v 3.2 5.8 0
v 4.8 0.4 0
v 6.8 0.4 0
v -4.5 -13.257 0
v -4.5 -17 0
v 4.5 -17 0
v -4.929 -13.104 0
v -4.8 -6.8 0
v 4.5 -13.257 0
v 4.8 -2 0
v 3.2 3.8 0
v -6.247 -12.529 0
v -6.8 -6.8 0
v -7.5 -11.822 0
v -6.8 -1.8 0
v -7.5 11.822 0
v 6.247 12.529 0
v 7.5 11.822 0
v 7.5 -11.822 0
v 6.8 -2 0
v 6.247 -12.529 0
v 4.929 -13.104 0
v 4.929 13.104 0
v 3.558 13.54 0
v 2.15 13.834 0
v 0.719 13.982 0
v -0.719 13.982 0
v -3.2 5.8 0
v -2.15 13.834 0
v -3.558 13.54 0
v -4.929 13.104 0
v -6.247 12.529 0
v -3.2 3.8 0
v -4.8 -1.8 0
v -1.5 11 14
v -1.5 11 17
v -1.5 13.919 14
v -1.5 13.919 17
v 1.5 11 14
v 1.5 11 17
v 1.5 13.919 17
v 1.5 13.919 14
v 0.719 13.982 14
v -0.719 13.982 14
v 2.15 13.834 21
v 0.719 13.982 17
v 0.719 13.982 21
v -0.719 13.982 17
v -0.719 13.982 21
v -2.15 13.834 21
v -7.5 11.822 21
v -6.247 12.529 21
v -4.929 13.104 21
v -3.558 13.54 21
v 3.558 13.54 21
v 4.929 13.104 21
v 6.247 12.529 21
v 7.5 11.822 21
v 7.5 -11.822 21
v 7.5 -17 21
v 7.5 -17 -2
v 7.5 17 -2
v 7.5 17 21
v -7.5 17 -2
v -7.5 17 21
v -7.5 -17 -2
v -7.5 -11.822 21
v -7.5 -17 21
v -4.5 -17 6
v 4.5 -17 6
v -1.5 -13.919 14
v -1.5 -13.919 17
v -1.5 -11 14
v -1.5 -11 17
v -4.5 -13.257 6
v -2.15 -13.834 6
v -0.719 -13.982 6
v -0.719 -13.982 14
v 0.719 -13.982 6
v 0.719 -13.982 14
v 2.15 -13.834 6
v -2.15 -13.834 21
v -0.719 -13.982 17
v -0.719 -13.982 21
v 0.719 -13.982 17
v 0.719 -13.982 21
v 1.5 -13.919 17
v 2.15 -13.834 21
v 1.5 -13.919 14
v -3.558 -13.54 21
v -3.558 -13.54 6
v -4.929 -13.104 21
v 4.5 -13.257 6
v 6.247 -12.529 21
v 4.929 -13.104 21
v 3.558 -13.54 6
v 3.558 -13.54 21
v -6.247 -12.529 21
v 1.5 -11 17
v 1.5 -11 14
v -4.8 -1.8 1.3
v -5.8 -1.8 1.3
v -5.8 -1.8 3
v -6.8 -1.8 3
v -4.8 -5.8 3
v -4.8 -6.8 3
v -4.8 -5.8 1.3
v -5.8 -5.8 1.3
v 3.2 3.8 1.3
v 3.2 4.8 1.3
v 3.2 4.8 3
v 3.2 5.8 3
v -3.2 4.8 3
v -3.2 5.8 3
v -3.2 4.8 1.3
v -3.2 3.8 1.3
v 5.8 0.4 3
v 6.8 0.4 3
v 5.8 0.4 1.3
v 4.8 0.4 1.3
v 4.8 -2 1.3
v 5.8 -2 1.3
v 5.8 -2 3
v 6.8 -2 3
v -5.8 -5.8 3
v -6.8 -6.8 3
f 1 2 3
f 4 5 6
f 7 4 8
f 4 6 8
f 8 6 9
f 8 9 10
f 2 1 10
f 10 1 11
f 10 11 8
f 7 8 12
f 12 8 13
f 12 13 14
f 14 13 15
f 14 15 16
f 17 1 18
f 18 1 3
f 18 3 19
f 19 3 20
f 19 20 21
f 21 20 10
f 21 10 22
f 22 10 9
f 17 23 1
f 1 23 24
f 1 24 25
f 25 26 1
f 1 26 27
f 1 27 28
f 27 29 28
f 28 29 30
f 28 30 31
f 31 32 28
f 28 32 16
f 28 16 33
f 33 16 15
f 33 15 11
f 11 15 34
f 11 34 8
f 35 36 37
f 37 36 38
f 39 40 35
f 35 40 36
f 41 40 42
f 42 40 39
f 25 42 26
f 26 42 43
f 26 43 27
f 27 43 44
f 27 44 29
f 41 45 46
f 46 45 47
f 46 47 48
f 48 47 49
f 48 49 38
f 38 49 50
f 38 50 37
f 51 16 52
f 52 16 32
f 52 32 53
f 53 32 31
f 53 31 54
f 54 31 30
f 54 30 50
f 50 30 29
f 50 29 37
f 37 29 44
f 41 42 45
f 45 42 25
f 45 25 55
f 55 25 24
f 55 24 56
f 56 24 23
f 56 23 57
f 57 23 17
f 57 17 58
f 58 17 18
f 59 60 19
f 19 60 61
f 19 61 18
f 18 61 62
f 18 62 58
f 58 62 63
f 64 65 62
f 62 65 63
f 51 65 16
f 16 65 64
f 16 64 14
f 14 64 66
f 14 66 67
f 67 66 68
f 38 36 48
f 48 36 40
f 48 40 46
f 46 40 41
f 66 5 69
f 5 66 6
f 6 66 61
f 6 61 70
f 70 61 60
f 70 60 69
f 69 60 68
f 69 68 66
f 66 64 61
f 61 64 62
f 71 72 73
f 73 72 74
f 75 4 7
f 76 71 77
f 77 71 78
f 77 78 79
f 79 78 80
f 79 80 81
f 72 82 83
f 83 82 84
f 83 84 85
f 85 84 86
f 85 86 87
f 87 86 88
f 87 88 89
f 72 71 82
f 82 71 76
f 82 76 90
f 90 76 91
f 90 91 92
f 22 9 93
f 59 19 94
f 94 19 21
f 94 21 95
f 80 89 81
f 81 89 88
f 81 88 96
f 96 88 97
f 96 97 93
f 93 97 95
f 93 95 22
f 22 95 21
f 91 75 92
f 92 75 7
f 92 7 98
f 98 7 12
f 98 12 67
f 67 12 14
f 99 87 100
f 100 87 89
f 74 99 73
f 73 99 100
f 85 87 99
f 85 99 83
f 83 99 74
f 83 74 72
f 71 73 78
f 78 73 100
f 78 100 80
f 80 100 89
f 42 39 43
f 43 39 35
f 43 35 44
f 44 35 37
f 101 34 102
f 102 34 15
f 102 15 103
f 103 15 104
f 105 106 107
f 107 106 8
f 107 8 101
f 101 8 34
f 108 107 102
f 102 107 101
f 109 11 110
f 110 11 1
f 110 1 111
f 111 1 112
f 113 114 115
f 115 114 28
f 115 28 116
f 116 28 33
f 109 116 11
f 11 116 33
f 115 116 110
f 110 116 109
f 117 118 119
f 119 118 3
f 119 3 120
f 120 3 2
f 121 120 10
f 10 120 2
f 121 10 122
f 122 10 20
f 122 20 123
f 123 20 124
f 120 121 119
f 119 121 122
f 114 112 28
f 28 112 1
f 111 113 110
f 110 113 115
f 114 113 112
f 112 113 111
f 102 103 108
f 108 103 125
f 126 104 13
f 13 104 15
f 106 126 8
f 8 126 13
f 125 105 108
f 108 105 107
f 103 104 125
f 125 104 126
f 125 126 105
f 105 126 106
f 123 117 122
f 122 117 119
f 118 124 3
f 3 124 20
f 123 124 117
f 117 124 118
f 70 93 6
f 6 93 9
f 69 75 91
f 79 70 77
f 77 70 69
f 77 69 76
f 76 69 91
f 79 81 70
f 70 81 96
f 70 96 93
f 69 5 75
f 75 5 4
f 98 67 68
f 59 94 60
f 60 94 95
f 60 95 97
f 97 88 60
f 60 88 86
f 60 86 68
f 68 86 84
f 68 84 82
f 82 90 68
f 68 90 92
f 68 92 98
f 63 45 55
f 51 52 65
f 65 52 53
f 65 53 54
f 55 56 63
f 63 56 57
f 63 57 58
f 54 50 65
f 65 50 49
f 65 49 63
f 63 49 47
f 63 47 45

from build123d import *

# Parameters (mm, degrees)
BOSS_EXTRUDE1_DEPTH = 17
SKETCH1_3_W         = 15
SKETCH1_3_H         = 34
BOSS_EXTRUDE3_DEPTH = 2
CUT_EXTRUDE1_DEPTH  = 14
SKETCH2_W           = 1
SKETCH2_H           = 4
SKETCH2_W_2         = 6.4
SKETCH2_H_2         = 1
SKETCH2_H_3         = 2.4
BOSS_EXTRUDE5_DEPTH = 1.3
SKETCH2_3_W         = 6.4
SKETCH2_3_H         = 1
SKETCH2_3_W_2       = 1
SKETCH2_3_H_2       = 2.4
BOSS_EXTRUDE6_DEPTH = 3
CUT_EXTRUDE3_REACH  = 36
SKETCH5_W           = 9
SKETCH5_H           = 6
BOSS_EXTRUDE7_DEPTH = 4


with BuildPart() as part:
    # Sketch1 → Boss-Extrude1 (new body)
    with BuildSketch(Plane.XY):
        with BuildLine():
            Line((7.5, 17), (-7.5, 17))
            Line((-7.5, 17), (-7.5, 11.821590418))
            ThreePointArc((-7.5, 11.821590418), (-4.620629037, 13.21551313), (-1.5, 13.919410907))
            Line((-1.5, 13.919410907), (-1.5, 14))
            Line((-1.5, 14), (0, 14))
            Line((0, 14), (1.5, 14))
            Line((1.5, 14), (1.5, 13.919410907))
            ThreePointArc((1.5, 13.919410907), (4.620629037, 13.21551313), (7.5, 11.821590418))
            Line((7.5, 11.821590418), (7.5, 17))
        make_face()
        with BuildLine():
            ThreePointArc((0, 14), (-0.751081654, 13.979838209), (-1.5, 13.919410907))
            Line((-1.5, 13.919410907), (-1.5, 11))
            Line((-1.5, 11), (1.5, 11))
            Line((1.5, 11), (1.5, 13.919410907))
            ThreePointArc((1.5, 13.919410907), (0.751081654, 13.979838209), (0, 14))
        make_face()
        with BuildLine():
            Line((-1.5, -11), (-1.5, -13.919410907))
            ThreePointArc((-1.5, -13.919410907), (-0.751081654, -13.979838209), (0, -14))
            ThreePointArc((0, -14), (0.751081654, -13.979838209), (1.5, -13.919410907))
            Line((1.5, -13.919410907), (1.5, -11))
            Line((1.5, -11), (-1.5, -11))
        make_face()
        with BuildLine():
            ThreePointArc((-1.5, -13.919410907), (-4.620629037, -13.21551313), (-7.5, -11.821590418))
            Line((-7.5, -11.821590418), (-7.5, -17))
            Line((-7.5, -17), (7.5, -17))
            Line((7.5, -17), (7.5, -11.821590418))
            ThreePointArc((7.5, -11.821590418), (4.620629037, -13.21551313), (1.5, -13.919410907))
            Line((1.5, -13.919410907), (1.5, -14))
            Line((1.5, -14), (0, -14))
            Line((0, -14), (-1.5, -14))
            Line((-1.5, -14), (-1.5, -13.919410907))
        make_face()
        with BuildLine():
            ThreePointArc((0, 14), (0.751081654, 13.979838209), (1.5, 13.919410907))
            Line((1.5, 13.919410907), (1.5, 14))
            Line((1.5, 14), (0, 14))
        make_face()
        with BuildLine():
            Line((-1.5, 14), (-1.5, 13.919410907))
            ThreePointArc((-1.5, 13.919410907), (-0.751081654, 13.979838209), (0, 14))
            Line((0, 14), (-1.5, 14))
        make_face()
        with BuildLine():
            ThreePointArc((0, -14), (-0.751081654, -13.979838209), (-1.5, -13.919410907))
            Line((-1.5, -13.919410907), (-1.5, -14))
            Line((-1.5, -14), (0, -14))
        make_face()
        with BuildLine():
            Line((1.5, -14), (1.5, -13.919410907))
            ThreePointArc((1.5, -13.919410907), (0.751081654, -13.979838209), (0, -14))
            Line((0, -14), (1.5, -14))
        make_face()
    extrude(amount=BOSS_EXTRUDE1_DEPTH)

    # Sketch1_3 → Boss-Extrude3 (add)
    with BuildSketch(Plane.XY):
        Rectangle(SKETCH1_3_W, SKETCH1_3_H)
    extrude(amount=-BOSS_EXTRUDE3_DEPTH)

    # Sketch1_4 → Cut-Extrude1 (cut)
    with BuildSketch(Plane.XY):
        with BuildLine():
            Line((-1.5, -11), (-1.5, -13.919410907))
            ThreePointArc((-1.5, -13.919410907), (-0.751081654, -13.979838209), (0, -14))
            ThreePointArc((0, -14), (0.751081654, -13.979838209), (1.5, -13.919410907))
            Line((1.5, -13.919410907), (1.5, -11))
            Line((1.5, -11), (-1.5, -11))
        make_face()
        with BuildLine():
            ThreePointArc((0, 14), (-0.751081654, 13.979838209), (-1.5, 13.919410907))
            Line((-1.5, 13.919410907), (-1.5, 11))
            Line((-1.5, 11), (1.5, 11))
            Line((1.5, 11), (1.5, 13.919410907))
            ThreePointArc((1.5, 13.919410907), (0.751081654, 13.979838209), (0, 14))
        make_face()
    extrude(amount=CUT_EXTRUDE1_DEPTH, mode=Mode.SUBTRACT)

    # Sketch2 → Boss-Extrude5 (add)
    with BuildSketch(Plane.XY):
        with Locations((-5.3, -3.8)):
            Rectangle(SKETCH2_W, SKETCH2_H)
        with Locations((0, 4.3)):
            Rectangle(SKETCH2_W_2, SKETCH2_H_2)
        with Locations((5.3, -0.8)):
            Rectangle(SKETCH2_W, SKETCH2_H_3)
    extrude(amount=BOSS_EXTRUDE5_DEPTH)

    # Sketch2_3 → Boss-Extrude6 (add)
    with BuildSketch(Plane.XY):
        with Locations((0, 5.3)):
            Rectangle(SKETCH2_3_W, SKETCH2_3_H)
        Polygon((-5.8, -1.8), (-6.8, -1.8), (-6.8, -6.8), (-4.8, -6.8), (-4.8, -5.8), (-5.8, -5.8), align=None)
        with Locations((6.3, -0.8)):
            Rectangle(SKETCH2_3_W_2, SKETCH2_3_H_2)
    extrude(amount=BOSS_EXTRUDE6_DEPTH)

    # Sketch5 → Cut-Extrude3 (cut, up to next)
    with BuildSketch(Plane.XZ.offset(17), mode=Mode.PRIVATE) as cut_extrude3_sk1:
        with Locations((0, 3)):
            Rectangle(SKETCH5_W, SKETCH5_H)
    cut_extrude3_tool1 = extrude(cut_extrude3_sk1.sketch, amount=-CUT_EXTRUDE3_REACH, mode=Mode.PRIVATE) & part.part
    add(cut_extrude3_tool1.solids().sort_by_distance((0, -17, 3))[0], mode=Mode.SUBTRACT)

    # Sketch6 → Boss-Extrude7 (add)
    with BuildSketch(Plane.XY.offset(17)):
        with BuildLine():
            ThreePointArc((-1.5, -13.919410907), (-4.620629037, -13.21551313), (-7.5, -11.821590418))
            Line((-7.5, -11.821590418), (-7.5, -17))
            Line((-7.5, -17), (7.5, -17))
            Line((7.5, -17), (7.5, -11.821590418))
            ThreePointArc((7.5, -11.821590418), (4.620629037, -13.21551313), (1.5, -13.919410907))
            ThreePointArc((1.5, -13.919410907), (0, -14), (-1.5, -13.919410907))
        make_face()
        with BuildLine():
            ThreePointArc((1.5, 13.919410907), (4.620629037, 13.21551313), (7.5, 11.821590418))
            Line((7.5, 11.821590418), (7.5, 17))
            Line((7.5, 17), (-7.5, 17))
            Line((-7.5, 17), (-7.5, 11.821590418))
            ThreePointArc((-7.5, 11.821590418), (-4.620629037, 13.21551313), (-1.5, 13.919410907))
            ThreePointArc((-1.5, 13.919410907), (0, 14), (1.5, 13.919410907))
        make_face()
    extrude(amount=BOSS_EXTRUDE7_DEPTH)


solid = part.part
